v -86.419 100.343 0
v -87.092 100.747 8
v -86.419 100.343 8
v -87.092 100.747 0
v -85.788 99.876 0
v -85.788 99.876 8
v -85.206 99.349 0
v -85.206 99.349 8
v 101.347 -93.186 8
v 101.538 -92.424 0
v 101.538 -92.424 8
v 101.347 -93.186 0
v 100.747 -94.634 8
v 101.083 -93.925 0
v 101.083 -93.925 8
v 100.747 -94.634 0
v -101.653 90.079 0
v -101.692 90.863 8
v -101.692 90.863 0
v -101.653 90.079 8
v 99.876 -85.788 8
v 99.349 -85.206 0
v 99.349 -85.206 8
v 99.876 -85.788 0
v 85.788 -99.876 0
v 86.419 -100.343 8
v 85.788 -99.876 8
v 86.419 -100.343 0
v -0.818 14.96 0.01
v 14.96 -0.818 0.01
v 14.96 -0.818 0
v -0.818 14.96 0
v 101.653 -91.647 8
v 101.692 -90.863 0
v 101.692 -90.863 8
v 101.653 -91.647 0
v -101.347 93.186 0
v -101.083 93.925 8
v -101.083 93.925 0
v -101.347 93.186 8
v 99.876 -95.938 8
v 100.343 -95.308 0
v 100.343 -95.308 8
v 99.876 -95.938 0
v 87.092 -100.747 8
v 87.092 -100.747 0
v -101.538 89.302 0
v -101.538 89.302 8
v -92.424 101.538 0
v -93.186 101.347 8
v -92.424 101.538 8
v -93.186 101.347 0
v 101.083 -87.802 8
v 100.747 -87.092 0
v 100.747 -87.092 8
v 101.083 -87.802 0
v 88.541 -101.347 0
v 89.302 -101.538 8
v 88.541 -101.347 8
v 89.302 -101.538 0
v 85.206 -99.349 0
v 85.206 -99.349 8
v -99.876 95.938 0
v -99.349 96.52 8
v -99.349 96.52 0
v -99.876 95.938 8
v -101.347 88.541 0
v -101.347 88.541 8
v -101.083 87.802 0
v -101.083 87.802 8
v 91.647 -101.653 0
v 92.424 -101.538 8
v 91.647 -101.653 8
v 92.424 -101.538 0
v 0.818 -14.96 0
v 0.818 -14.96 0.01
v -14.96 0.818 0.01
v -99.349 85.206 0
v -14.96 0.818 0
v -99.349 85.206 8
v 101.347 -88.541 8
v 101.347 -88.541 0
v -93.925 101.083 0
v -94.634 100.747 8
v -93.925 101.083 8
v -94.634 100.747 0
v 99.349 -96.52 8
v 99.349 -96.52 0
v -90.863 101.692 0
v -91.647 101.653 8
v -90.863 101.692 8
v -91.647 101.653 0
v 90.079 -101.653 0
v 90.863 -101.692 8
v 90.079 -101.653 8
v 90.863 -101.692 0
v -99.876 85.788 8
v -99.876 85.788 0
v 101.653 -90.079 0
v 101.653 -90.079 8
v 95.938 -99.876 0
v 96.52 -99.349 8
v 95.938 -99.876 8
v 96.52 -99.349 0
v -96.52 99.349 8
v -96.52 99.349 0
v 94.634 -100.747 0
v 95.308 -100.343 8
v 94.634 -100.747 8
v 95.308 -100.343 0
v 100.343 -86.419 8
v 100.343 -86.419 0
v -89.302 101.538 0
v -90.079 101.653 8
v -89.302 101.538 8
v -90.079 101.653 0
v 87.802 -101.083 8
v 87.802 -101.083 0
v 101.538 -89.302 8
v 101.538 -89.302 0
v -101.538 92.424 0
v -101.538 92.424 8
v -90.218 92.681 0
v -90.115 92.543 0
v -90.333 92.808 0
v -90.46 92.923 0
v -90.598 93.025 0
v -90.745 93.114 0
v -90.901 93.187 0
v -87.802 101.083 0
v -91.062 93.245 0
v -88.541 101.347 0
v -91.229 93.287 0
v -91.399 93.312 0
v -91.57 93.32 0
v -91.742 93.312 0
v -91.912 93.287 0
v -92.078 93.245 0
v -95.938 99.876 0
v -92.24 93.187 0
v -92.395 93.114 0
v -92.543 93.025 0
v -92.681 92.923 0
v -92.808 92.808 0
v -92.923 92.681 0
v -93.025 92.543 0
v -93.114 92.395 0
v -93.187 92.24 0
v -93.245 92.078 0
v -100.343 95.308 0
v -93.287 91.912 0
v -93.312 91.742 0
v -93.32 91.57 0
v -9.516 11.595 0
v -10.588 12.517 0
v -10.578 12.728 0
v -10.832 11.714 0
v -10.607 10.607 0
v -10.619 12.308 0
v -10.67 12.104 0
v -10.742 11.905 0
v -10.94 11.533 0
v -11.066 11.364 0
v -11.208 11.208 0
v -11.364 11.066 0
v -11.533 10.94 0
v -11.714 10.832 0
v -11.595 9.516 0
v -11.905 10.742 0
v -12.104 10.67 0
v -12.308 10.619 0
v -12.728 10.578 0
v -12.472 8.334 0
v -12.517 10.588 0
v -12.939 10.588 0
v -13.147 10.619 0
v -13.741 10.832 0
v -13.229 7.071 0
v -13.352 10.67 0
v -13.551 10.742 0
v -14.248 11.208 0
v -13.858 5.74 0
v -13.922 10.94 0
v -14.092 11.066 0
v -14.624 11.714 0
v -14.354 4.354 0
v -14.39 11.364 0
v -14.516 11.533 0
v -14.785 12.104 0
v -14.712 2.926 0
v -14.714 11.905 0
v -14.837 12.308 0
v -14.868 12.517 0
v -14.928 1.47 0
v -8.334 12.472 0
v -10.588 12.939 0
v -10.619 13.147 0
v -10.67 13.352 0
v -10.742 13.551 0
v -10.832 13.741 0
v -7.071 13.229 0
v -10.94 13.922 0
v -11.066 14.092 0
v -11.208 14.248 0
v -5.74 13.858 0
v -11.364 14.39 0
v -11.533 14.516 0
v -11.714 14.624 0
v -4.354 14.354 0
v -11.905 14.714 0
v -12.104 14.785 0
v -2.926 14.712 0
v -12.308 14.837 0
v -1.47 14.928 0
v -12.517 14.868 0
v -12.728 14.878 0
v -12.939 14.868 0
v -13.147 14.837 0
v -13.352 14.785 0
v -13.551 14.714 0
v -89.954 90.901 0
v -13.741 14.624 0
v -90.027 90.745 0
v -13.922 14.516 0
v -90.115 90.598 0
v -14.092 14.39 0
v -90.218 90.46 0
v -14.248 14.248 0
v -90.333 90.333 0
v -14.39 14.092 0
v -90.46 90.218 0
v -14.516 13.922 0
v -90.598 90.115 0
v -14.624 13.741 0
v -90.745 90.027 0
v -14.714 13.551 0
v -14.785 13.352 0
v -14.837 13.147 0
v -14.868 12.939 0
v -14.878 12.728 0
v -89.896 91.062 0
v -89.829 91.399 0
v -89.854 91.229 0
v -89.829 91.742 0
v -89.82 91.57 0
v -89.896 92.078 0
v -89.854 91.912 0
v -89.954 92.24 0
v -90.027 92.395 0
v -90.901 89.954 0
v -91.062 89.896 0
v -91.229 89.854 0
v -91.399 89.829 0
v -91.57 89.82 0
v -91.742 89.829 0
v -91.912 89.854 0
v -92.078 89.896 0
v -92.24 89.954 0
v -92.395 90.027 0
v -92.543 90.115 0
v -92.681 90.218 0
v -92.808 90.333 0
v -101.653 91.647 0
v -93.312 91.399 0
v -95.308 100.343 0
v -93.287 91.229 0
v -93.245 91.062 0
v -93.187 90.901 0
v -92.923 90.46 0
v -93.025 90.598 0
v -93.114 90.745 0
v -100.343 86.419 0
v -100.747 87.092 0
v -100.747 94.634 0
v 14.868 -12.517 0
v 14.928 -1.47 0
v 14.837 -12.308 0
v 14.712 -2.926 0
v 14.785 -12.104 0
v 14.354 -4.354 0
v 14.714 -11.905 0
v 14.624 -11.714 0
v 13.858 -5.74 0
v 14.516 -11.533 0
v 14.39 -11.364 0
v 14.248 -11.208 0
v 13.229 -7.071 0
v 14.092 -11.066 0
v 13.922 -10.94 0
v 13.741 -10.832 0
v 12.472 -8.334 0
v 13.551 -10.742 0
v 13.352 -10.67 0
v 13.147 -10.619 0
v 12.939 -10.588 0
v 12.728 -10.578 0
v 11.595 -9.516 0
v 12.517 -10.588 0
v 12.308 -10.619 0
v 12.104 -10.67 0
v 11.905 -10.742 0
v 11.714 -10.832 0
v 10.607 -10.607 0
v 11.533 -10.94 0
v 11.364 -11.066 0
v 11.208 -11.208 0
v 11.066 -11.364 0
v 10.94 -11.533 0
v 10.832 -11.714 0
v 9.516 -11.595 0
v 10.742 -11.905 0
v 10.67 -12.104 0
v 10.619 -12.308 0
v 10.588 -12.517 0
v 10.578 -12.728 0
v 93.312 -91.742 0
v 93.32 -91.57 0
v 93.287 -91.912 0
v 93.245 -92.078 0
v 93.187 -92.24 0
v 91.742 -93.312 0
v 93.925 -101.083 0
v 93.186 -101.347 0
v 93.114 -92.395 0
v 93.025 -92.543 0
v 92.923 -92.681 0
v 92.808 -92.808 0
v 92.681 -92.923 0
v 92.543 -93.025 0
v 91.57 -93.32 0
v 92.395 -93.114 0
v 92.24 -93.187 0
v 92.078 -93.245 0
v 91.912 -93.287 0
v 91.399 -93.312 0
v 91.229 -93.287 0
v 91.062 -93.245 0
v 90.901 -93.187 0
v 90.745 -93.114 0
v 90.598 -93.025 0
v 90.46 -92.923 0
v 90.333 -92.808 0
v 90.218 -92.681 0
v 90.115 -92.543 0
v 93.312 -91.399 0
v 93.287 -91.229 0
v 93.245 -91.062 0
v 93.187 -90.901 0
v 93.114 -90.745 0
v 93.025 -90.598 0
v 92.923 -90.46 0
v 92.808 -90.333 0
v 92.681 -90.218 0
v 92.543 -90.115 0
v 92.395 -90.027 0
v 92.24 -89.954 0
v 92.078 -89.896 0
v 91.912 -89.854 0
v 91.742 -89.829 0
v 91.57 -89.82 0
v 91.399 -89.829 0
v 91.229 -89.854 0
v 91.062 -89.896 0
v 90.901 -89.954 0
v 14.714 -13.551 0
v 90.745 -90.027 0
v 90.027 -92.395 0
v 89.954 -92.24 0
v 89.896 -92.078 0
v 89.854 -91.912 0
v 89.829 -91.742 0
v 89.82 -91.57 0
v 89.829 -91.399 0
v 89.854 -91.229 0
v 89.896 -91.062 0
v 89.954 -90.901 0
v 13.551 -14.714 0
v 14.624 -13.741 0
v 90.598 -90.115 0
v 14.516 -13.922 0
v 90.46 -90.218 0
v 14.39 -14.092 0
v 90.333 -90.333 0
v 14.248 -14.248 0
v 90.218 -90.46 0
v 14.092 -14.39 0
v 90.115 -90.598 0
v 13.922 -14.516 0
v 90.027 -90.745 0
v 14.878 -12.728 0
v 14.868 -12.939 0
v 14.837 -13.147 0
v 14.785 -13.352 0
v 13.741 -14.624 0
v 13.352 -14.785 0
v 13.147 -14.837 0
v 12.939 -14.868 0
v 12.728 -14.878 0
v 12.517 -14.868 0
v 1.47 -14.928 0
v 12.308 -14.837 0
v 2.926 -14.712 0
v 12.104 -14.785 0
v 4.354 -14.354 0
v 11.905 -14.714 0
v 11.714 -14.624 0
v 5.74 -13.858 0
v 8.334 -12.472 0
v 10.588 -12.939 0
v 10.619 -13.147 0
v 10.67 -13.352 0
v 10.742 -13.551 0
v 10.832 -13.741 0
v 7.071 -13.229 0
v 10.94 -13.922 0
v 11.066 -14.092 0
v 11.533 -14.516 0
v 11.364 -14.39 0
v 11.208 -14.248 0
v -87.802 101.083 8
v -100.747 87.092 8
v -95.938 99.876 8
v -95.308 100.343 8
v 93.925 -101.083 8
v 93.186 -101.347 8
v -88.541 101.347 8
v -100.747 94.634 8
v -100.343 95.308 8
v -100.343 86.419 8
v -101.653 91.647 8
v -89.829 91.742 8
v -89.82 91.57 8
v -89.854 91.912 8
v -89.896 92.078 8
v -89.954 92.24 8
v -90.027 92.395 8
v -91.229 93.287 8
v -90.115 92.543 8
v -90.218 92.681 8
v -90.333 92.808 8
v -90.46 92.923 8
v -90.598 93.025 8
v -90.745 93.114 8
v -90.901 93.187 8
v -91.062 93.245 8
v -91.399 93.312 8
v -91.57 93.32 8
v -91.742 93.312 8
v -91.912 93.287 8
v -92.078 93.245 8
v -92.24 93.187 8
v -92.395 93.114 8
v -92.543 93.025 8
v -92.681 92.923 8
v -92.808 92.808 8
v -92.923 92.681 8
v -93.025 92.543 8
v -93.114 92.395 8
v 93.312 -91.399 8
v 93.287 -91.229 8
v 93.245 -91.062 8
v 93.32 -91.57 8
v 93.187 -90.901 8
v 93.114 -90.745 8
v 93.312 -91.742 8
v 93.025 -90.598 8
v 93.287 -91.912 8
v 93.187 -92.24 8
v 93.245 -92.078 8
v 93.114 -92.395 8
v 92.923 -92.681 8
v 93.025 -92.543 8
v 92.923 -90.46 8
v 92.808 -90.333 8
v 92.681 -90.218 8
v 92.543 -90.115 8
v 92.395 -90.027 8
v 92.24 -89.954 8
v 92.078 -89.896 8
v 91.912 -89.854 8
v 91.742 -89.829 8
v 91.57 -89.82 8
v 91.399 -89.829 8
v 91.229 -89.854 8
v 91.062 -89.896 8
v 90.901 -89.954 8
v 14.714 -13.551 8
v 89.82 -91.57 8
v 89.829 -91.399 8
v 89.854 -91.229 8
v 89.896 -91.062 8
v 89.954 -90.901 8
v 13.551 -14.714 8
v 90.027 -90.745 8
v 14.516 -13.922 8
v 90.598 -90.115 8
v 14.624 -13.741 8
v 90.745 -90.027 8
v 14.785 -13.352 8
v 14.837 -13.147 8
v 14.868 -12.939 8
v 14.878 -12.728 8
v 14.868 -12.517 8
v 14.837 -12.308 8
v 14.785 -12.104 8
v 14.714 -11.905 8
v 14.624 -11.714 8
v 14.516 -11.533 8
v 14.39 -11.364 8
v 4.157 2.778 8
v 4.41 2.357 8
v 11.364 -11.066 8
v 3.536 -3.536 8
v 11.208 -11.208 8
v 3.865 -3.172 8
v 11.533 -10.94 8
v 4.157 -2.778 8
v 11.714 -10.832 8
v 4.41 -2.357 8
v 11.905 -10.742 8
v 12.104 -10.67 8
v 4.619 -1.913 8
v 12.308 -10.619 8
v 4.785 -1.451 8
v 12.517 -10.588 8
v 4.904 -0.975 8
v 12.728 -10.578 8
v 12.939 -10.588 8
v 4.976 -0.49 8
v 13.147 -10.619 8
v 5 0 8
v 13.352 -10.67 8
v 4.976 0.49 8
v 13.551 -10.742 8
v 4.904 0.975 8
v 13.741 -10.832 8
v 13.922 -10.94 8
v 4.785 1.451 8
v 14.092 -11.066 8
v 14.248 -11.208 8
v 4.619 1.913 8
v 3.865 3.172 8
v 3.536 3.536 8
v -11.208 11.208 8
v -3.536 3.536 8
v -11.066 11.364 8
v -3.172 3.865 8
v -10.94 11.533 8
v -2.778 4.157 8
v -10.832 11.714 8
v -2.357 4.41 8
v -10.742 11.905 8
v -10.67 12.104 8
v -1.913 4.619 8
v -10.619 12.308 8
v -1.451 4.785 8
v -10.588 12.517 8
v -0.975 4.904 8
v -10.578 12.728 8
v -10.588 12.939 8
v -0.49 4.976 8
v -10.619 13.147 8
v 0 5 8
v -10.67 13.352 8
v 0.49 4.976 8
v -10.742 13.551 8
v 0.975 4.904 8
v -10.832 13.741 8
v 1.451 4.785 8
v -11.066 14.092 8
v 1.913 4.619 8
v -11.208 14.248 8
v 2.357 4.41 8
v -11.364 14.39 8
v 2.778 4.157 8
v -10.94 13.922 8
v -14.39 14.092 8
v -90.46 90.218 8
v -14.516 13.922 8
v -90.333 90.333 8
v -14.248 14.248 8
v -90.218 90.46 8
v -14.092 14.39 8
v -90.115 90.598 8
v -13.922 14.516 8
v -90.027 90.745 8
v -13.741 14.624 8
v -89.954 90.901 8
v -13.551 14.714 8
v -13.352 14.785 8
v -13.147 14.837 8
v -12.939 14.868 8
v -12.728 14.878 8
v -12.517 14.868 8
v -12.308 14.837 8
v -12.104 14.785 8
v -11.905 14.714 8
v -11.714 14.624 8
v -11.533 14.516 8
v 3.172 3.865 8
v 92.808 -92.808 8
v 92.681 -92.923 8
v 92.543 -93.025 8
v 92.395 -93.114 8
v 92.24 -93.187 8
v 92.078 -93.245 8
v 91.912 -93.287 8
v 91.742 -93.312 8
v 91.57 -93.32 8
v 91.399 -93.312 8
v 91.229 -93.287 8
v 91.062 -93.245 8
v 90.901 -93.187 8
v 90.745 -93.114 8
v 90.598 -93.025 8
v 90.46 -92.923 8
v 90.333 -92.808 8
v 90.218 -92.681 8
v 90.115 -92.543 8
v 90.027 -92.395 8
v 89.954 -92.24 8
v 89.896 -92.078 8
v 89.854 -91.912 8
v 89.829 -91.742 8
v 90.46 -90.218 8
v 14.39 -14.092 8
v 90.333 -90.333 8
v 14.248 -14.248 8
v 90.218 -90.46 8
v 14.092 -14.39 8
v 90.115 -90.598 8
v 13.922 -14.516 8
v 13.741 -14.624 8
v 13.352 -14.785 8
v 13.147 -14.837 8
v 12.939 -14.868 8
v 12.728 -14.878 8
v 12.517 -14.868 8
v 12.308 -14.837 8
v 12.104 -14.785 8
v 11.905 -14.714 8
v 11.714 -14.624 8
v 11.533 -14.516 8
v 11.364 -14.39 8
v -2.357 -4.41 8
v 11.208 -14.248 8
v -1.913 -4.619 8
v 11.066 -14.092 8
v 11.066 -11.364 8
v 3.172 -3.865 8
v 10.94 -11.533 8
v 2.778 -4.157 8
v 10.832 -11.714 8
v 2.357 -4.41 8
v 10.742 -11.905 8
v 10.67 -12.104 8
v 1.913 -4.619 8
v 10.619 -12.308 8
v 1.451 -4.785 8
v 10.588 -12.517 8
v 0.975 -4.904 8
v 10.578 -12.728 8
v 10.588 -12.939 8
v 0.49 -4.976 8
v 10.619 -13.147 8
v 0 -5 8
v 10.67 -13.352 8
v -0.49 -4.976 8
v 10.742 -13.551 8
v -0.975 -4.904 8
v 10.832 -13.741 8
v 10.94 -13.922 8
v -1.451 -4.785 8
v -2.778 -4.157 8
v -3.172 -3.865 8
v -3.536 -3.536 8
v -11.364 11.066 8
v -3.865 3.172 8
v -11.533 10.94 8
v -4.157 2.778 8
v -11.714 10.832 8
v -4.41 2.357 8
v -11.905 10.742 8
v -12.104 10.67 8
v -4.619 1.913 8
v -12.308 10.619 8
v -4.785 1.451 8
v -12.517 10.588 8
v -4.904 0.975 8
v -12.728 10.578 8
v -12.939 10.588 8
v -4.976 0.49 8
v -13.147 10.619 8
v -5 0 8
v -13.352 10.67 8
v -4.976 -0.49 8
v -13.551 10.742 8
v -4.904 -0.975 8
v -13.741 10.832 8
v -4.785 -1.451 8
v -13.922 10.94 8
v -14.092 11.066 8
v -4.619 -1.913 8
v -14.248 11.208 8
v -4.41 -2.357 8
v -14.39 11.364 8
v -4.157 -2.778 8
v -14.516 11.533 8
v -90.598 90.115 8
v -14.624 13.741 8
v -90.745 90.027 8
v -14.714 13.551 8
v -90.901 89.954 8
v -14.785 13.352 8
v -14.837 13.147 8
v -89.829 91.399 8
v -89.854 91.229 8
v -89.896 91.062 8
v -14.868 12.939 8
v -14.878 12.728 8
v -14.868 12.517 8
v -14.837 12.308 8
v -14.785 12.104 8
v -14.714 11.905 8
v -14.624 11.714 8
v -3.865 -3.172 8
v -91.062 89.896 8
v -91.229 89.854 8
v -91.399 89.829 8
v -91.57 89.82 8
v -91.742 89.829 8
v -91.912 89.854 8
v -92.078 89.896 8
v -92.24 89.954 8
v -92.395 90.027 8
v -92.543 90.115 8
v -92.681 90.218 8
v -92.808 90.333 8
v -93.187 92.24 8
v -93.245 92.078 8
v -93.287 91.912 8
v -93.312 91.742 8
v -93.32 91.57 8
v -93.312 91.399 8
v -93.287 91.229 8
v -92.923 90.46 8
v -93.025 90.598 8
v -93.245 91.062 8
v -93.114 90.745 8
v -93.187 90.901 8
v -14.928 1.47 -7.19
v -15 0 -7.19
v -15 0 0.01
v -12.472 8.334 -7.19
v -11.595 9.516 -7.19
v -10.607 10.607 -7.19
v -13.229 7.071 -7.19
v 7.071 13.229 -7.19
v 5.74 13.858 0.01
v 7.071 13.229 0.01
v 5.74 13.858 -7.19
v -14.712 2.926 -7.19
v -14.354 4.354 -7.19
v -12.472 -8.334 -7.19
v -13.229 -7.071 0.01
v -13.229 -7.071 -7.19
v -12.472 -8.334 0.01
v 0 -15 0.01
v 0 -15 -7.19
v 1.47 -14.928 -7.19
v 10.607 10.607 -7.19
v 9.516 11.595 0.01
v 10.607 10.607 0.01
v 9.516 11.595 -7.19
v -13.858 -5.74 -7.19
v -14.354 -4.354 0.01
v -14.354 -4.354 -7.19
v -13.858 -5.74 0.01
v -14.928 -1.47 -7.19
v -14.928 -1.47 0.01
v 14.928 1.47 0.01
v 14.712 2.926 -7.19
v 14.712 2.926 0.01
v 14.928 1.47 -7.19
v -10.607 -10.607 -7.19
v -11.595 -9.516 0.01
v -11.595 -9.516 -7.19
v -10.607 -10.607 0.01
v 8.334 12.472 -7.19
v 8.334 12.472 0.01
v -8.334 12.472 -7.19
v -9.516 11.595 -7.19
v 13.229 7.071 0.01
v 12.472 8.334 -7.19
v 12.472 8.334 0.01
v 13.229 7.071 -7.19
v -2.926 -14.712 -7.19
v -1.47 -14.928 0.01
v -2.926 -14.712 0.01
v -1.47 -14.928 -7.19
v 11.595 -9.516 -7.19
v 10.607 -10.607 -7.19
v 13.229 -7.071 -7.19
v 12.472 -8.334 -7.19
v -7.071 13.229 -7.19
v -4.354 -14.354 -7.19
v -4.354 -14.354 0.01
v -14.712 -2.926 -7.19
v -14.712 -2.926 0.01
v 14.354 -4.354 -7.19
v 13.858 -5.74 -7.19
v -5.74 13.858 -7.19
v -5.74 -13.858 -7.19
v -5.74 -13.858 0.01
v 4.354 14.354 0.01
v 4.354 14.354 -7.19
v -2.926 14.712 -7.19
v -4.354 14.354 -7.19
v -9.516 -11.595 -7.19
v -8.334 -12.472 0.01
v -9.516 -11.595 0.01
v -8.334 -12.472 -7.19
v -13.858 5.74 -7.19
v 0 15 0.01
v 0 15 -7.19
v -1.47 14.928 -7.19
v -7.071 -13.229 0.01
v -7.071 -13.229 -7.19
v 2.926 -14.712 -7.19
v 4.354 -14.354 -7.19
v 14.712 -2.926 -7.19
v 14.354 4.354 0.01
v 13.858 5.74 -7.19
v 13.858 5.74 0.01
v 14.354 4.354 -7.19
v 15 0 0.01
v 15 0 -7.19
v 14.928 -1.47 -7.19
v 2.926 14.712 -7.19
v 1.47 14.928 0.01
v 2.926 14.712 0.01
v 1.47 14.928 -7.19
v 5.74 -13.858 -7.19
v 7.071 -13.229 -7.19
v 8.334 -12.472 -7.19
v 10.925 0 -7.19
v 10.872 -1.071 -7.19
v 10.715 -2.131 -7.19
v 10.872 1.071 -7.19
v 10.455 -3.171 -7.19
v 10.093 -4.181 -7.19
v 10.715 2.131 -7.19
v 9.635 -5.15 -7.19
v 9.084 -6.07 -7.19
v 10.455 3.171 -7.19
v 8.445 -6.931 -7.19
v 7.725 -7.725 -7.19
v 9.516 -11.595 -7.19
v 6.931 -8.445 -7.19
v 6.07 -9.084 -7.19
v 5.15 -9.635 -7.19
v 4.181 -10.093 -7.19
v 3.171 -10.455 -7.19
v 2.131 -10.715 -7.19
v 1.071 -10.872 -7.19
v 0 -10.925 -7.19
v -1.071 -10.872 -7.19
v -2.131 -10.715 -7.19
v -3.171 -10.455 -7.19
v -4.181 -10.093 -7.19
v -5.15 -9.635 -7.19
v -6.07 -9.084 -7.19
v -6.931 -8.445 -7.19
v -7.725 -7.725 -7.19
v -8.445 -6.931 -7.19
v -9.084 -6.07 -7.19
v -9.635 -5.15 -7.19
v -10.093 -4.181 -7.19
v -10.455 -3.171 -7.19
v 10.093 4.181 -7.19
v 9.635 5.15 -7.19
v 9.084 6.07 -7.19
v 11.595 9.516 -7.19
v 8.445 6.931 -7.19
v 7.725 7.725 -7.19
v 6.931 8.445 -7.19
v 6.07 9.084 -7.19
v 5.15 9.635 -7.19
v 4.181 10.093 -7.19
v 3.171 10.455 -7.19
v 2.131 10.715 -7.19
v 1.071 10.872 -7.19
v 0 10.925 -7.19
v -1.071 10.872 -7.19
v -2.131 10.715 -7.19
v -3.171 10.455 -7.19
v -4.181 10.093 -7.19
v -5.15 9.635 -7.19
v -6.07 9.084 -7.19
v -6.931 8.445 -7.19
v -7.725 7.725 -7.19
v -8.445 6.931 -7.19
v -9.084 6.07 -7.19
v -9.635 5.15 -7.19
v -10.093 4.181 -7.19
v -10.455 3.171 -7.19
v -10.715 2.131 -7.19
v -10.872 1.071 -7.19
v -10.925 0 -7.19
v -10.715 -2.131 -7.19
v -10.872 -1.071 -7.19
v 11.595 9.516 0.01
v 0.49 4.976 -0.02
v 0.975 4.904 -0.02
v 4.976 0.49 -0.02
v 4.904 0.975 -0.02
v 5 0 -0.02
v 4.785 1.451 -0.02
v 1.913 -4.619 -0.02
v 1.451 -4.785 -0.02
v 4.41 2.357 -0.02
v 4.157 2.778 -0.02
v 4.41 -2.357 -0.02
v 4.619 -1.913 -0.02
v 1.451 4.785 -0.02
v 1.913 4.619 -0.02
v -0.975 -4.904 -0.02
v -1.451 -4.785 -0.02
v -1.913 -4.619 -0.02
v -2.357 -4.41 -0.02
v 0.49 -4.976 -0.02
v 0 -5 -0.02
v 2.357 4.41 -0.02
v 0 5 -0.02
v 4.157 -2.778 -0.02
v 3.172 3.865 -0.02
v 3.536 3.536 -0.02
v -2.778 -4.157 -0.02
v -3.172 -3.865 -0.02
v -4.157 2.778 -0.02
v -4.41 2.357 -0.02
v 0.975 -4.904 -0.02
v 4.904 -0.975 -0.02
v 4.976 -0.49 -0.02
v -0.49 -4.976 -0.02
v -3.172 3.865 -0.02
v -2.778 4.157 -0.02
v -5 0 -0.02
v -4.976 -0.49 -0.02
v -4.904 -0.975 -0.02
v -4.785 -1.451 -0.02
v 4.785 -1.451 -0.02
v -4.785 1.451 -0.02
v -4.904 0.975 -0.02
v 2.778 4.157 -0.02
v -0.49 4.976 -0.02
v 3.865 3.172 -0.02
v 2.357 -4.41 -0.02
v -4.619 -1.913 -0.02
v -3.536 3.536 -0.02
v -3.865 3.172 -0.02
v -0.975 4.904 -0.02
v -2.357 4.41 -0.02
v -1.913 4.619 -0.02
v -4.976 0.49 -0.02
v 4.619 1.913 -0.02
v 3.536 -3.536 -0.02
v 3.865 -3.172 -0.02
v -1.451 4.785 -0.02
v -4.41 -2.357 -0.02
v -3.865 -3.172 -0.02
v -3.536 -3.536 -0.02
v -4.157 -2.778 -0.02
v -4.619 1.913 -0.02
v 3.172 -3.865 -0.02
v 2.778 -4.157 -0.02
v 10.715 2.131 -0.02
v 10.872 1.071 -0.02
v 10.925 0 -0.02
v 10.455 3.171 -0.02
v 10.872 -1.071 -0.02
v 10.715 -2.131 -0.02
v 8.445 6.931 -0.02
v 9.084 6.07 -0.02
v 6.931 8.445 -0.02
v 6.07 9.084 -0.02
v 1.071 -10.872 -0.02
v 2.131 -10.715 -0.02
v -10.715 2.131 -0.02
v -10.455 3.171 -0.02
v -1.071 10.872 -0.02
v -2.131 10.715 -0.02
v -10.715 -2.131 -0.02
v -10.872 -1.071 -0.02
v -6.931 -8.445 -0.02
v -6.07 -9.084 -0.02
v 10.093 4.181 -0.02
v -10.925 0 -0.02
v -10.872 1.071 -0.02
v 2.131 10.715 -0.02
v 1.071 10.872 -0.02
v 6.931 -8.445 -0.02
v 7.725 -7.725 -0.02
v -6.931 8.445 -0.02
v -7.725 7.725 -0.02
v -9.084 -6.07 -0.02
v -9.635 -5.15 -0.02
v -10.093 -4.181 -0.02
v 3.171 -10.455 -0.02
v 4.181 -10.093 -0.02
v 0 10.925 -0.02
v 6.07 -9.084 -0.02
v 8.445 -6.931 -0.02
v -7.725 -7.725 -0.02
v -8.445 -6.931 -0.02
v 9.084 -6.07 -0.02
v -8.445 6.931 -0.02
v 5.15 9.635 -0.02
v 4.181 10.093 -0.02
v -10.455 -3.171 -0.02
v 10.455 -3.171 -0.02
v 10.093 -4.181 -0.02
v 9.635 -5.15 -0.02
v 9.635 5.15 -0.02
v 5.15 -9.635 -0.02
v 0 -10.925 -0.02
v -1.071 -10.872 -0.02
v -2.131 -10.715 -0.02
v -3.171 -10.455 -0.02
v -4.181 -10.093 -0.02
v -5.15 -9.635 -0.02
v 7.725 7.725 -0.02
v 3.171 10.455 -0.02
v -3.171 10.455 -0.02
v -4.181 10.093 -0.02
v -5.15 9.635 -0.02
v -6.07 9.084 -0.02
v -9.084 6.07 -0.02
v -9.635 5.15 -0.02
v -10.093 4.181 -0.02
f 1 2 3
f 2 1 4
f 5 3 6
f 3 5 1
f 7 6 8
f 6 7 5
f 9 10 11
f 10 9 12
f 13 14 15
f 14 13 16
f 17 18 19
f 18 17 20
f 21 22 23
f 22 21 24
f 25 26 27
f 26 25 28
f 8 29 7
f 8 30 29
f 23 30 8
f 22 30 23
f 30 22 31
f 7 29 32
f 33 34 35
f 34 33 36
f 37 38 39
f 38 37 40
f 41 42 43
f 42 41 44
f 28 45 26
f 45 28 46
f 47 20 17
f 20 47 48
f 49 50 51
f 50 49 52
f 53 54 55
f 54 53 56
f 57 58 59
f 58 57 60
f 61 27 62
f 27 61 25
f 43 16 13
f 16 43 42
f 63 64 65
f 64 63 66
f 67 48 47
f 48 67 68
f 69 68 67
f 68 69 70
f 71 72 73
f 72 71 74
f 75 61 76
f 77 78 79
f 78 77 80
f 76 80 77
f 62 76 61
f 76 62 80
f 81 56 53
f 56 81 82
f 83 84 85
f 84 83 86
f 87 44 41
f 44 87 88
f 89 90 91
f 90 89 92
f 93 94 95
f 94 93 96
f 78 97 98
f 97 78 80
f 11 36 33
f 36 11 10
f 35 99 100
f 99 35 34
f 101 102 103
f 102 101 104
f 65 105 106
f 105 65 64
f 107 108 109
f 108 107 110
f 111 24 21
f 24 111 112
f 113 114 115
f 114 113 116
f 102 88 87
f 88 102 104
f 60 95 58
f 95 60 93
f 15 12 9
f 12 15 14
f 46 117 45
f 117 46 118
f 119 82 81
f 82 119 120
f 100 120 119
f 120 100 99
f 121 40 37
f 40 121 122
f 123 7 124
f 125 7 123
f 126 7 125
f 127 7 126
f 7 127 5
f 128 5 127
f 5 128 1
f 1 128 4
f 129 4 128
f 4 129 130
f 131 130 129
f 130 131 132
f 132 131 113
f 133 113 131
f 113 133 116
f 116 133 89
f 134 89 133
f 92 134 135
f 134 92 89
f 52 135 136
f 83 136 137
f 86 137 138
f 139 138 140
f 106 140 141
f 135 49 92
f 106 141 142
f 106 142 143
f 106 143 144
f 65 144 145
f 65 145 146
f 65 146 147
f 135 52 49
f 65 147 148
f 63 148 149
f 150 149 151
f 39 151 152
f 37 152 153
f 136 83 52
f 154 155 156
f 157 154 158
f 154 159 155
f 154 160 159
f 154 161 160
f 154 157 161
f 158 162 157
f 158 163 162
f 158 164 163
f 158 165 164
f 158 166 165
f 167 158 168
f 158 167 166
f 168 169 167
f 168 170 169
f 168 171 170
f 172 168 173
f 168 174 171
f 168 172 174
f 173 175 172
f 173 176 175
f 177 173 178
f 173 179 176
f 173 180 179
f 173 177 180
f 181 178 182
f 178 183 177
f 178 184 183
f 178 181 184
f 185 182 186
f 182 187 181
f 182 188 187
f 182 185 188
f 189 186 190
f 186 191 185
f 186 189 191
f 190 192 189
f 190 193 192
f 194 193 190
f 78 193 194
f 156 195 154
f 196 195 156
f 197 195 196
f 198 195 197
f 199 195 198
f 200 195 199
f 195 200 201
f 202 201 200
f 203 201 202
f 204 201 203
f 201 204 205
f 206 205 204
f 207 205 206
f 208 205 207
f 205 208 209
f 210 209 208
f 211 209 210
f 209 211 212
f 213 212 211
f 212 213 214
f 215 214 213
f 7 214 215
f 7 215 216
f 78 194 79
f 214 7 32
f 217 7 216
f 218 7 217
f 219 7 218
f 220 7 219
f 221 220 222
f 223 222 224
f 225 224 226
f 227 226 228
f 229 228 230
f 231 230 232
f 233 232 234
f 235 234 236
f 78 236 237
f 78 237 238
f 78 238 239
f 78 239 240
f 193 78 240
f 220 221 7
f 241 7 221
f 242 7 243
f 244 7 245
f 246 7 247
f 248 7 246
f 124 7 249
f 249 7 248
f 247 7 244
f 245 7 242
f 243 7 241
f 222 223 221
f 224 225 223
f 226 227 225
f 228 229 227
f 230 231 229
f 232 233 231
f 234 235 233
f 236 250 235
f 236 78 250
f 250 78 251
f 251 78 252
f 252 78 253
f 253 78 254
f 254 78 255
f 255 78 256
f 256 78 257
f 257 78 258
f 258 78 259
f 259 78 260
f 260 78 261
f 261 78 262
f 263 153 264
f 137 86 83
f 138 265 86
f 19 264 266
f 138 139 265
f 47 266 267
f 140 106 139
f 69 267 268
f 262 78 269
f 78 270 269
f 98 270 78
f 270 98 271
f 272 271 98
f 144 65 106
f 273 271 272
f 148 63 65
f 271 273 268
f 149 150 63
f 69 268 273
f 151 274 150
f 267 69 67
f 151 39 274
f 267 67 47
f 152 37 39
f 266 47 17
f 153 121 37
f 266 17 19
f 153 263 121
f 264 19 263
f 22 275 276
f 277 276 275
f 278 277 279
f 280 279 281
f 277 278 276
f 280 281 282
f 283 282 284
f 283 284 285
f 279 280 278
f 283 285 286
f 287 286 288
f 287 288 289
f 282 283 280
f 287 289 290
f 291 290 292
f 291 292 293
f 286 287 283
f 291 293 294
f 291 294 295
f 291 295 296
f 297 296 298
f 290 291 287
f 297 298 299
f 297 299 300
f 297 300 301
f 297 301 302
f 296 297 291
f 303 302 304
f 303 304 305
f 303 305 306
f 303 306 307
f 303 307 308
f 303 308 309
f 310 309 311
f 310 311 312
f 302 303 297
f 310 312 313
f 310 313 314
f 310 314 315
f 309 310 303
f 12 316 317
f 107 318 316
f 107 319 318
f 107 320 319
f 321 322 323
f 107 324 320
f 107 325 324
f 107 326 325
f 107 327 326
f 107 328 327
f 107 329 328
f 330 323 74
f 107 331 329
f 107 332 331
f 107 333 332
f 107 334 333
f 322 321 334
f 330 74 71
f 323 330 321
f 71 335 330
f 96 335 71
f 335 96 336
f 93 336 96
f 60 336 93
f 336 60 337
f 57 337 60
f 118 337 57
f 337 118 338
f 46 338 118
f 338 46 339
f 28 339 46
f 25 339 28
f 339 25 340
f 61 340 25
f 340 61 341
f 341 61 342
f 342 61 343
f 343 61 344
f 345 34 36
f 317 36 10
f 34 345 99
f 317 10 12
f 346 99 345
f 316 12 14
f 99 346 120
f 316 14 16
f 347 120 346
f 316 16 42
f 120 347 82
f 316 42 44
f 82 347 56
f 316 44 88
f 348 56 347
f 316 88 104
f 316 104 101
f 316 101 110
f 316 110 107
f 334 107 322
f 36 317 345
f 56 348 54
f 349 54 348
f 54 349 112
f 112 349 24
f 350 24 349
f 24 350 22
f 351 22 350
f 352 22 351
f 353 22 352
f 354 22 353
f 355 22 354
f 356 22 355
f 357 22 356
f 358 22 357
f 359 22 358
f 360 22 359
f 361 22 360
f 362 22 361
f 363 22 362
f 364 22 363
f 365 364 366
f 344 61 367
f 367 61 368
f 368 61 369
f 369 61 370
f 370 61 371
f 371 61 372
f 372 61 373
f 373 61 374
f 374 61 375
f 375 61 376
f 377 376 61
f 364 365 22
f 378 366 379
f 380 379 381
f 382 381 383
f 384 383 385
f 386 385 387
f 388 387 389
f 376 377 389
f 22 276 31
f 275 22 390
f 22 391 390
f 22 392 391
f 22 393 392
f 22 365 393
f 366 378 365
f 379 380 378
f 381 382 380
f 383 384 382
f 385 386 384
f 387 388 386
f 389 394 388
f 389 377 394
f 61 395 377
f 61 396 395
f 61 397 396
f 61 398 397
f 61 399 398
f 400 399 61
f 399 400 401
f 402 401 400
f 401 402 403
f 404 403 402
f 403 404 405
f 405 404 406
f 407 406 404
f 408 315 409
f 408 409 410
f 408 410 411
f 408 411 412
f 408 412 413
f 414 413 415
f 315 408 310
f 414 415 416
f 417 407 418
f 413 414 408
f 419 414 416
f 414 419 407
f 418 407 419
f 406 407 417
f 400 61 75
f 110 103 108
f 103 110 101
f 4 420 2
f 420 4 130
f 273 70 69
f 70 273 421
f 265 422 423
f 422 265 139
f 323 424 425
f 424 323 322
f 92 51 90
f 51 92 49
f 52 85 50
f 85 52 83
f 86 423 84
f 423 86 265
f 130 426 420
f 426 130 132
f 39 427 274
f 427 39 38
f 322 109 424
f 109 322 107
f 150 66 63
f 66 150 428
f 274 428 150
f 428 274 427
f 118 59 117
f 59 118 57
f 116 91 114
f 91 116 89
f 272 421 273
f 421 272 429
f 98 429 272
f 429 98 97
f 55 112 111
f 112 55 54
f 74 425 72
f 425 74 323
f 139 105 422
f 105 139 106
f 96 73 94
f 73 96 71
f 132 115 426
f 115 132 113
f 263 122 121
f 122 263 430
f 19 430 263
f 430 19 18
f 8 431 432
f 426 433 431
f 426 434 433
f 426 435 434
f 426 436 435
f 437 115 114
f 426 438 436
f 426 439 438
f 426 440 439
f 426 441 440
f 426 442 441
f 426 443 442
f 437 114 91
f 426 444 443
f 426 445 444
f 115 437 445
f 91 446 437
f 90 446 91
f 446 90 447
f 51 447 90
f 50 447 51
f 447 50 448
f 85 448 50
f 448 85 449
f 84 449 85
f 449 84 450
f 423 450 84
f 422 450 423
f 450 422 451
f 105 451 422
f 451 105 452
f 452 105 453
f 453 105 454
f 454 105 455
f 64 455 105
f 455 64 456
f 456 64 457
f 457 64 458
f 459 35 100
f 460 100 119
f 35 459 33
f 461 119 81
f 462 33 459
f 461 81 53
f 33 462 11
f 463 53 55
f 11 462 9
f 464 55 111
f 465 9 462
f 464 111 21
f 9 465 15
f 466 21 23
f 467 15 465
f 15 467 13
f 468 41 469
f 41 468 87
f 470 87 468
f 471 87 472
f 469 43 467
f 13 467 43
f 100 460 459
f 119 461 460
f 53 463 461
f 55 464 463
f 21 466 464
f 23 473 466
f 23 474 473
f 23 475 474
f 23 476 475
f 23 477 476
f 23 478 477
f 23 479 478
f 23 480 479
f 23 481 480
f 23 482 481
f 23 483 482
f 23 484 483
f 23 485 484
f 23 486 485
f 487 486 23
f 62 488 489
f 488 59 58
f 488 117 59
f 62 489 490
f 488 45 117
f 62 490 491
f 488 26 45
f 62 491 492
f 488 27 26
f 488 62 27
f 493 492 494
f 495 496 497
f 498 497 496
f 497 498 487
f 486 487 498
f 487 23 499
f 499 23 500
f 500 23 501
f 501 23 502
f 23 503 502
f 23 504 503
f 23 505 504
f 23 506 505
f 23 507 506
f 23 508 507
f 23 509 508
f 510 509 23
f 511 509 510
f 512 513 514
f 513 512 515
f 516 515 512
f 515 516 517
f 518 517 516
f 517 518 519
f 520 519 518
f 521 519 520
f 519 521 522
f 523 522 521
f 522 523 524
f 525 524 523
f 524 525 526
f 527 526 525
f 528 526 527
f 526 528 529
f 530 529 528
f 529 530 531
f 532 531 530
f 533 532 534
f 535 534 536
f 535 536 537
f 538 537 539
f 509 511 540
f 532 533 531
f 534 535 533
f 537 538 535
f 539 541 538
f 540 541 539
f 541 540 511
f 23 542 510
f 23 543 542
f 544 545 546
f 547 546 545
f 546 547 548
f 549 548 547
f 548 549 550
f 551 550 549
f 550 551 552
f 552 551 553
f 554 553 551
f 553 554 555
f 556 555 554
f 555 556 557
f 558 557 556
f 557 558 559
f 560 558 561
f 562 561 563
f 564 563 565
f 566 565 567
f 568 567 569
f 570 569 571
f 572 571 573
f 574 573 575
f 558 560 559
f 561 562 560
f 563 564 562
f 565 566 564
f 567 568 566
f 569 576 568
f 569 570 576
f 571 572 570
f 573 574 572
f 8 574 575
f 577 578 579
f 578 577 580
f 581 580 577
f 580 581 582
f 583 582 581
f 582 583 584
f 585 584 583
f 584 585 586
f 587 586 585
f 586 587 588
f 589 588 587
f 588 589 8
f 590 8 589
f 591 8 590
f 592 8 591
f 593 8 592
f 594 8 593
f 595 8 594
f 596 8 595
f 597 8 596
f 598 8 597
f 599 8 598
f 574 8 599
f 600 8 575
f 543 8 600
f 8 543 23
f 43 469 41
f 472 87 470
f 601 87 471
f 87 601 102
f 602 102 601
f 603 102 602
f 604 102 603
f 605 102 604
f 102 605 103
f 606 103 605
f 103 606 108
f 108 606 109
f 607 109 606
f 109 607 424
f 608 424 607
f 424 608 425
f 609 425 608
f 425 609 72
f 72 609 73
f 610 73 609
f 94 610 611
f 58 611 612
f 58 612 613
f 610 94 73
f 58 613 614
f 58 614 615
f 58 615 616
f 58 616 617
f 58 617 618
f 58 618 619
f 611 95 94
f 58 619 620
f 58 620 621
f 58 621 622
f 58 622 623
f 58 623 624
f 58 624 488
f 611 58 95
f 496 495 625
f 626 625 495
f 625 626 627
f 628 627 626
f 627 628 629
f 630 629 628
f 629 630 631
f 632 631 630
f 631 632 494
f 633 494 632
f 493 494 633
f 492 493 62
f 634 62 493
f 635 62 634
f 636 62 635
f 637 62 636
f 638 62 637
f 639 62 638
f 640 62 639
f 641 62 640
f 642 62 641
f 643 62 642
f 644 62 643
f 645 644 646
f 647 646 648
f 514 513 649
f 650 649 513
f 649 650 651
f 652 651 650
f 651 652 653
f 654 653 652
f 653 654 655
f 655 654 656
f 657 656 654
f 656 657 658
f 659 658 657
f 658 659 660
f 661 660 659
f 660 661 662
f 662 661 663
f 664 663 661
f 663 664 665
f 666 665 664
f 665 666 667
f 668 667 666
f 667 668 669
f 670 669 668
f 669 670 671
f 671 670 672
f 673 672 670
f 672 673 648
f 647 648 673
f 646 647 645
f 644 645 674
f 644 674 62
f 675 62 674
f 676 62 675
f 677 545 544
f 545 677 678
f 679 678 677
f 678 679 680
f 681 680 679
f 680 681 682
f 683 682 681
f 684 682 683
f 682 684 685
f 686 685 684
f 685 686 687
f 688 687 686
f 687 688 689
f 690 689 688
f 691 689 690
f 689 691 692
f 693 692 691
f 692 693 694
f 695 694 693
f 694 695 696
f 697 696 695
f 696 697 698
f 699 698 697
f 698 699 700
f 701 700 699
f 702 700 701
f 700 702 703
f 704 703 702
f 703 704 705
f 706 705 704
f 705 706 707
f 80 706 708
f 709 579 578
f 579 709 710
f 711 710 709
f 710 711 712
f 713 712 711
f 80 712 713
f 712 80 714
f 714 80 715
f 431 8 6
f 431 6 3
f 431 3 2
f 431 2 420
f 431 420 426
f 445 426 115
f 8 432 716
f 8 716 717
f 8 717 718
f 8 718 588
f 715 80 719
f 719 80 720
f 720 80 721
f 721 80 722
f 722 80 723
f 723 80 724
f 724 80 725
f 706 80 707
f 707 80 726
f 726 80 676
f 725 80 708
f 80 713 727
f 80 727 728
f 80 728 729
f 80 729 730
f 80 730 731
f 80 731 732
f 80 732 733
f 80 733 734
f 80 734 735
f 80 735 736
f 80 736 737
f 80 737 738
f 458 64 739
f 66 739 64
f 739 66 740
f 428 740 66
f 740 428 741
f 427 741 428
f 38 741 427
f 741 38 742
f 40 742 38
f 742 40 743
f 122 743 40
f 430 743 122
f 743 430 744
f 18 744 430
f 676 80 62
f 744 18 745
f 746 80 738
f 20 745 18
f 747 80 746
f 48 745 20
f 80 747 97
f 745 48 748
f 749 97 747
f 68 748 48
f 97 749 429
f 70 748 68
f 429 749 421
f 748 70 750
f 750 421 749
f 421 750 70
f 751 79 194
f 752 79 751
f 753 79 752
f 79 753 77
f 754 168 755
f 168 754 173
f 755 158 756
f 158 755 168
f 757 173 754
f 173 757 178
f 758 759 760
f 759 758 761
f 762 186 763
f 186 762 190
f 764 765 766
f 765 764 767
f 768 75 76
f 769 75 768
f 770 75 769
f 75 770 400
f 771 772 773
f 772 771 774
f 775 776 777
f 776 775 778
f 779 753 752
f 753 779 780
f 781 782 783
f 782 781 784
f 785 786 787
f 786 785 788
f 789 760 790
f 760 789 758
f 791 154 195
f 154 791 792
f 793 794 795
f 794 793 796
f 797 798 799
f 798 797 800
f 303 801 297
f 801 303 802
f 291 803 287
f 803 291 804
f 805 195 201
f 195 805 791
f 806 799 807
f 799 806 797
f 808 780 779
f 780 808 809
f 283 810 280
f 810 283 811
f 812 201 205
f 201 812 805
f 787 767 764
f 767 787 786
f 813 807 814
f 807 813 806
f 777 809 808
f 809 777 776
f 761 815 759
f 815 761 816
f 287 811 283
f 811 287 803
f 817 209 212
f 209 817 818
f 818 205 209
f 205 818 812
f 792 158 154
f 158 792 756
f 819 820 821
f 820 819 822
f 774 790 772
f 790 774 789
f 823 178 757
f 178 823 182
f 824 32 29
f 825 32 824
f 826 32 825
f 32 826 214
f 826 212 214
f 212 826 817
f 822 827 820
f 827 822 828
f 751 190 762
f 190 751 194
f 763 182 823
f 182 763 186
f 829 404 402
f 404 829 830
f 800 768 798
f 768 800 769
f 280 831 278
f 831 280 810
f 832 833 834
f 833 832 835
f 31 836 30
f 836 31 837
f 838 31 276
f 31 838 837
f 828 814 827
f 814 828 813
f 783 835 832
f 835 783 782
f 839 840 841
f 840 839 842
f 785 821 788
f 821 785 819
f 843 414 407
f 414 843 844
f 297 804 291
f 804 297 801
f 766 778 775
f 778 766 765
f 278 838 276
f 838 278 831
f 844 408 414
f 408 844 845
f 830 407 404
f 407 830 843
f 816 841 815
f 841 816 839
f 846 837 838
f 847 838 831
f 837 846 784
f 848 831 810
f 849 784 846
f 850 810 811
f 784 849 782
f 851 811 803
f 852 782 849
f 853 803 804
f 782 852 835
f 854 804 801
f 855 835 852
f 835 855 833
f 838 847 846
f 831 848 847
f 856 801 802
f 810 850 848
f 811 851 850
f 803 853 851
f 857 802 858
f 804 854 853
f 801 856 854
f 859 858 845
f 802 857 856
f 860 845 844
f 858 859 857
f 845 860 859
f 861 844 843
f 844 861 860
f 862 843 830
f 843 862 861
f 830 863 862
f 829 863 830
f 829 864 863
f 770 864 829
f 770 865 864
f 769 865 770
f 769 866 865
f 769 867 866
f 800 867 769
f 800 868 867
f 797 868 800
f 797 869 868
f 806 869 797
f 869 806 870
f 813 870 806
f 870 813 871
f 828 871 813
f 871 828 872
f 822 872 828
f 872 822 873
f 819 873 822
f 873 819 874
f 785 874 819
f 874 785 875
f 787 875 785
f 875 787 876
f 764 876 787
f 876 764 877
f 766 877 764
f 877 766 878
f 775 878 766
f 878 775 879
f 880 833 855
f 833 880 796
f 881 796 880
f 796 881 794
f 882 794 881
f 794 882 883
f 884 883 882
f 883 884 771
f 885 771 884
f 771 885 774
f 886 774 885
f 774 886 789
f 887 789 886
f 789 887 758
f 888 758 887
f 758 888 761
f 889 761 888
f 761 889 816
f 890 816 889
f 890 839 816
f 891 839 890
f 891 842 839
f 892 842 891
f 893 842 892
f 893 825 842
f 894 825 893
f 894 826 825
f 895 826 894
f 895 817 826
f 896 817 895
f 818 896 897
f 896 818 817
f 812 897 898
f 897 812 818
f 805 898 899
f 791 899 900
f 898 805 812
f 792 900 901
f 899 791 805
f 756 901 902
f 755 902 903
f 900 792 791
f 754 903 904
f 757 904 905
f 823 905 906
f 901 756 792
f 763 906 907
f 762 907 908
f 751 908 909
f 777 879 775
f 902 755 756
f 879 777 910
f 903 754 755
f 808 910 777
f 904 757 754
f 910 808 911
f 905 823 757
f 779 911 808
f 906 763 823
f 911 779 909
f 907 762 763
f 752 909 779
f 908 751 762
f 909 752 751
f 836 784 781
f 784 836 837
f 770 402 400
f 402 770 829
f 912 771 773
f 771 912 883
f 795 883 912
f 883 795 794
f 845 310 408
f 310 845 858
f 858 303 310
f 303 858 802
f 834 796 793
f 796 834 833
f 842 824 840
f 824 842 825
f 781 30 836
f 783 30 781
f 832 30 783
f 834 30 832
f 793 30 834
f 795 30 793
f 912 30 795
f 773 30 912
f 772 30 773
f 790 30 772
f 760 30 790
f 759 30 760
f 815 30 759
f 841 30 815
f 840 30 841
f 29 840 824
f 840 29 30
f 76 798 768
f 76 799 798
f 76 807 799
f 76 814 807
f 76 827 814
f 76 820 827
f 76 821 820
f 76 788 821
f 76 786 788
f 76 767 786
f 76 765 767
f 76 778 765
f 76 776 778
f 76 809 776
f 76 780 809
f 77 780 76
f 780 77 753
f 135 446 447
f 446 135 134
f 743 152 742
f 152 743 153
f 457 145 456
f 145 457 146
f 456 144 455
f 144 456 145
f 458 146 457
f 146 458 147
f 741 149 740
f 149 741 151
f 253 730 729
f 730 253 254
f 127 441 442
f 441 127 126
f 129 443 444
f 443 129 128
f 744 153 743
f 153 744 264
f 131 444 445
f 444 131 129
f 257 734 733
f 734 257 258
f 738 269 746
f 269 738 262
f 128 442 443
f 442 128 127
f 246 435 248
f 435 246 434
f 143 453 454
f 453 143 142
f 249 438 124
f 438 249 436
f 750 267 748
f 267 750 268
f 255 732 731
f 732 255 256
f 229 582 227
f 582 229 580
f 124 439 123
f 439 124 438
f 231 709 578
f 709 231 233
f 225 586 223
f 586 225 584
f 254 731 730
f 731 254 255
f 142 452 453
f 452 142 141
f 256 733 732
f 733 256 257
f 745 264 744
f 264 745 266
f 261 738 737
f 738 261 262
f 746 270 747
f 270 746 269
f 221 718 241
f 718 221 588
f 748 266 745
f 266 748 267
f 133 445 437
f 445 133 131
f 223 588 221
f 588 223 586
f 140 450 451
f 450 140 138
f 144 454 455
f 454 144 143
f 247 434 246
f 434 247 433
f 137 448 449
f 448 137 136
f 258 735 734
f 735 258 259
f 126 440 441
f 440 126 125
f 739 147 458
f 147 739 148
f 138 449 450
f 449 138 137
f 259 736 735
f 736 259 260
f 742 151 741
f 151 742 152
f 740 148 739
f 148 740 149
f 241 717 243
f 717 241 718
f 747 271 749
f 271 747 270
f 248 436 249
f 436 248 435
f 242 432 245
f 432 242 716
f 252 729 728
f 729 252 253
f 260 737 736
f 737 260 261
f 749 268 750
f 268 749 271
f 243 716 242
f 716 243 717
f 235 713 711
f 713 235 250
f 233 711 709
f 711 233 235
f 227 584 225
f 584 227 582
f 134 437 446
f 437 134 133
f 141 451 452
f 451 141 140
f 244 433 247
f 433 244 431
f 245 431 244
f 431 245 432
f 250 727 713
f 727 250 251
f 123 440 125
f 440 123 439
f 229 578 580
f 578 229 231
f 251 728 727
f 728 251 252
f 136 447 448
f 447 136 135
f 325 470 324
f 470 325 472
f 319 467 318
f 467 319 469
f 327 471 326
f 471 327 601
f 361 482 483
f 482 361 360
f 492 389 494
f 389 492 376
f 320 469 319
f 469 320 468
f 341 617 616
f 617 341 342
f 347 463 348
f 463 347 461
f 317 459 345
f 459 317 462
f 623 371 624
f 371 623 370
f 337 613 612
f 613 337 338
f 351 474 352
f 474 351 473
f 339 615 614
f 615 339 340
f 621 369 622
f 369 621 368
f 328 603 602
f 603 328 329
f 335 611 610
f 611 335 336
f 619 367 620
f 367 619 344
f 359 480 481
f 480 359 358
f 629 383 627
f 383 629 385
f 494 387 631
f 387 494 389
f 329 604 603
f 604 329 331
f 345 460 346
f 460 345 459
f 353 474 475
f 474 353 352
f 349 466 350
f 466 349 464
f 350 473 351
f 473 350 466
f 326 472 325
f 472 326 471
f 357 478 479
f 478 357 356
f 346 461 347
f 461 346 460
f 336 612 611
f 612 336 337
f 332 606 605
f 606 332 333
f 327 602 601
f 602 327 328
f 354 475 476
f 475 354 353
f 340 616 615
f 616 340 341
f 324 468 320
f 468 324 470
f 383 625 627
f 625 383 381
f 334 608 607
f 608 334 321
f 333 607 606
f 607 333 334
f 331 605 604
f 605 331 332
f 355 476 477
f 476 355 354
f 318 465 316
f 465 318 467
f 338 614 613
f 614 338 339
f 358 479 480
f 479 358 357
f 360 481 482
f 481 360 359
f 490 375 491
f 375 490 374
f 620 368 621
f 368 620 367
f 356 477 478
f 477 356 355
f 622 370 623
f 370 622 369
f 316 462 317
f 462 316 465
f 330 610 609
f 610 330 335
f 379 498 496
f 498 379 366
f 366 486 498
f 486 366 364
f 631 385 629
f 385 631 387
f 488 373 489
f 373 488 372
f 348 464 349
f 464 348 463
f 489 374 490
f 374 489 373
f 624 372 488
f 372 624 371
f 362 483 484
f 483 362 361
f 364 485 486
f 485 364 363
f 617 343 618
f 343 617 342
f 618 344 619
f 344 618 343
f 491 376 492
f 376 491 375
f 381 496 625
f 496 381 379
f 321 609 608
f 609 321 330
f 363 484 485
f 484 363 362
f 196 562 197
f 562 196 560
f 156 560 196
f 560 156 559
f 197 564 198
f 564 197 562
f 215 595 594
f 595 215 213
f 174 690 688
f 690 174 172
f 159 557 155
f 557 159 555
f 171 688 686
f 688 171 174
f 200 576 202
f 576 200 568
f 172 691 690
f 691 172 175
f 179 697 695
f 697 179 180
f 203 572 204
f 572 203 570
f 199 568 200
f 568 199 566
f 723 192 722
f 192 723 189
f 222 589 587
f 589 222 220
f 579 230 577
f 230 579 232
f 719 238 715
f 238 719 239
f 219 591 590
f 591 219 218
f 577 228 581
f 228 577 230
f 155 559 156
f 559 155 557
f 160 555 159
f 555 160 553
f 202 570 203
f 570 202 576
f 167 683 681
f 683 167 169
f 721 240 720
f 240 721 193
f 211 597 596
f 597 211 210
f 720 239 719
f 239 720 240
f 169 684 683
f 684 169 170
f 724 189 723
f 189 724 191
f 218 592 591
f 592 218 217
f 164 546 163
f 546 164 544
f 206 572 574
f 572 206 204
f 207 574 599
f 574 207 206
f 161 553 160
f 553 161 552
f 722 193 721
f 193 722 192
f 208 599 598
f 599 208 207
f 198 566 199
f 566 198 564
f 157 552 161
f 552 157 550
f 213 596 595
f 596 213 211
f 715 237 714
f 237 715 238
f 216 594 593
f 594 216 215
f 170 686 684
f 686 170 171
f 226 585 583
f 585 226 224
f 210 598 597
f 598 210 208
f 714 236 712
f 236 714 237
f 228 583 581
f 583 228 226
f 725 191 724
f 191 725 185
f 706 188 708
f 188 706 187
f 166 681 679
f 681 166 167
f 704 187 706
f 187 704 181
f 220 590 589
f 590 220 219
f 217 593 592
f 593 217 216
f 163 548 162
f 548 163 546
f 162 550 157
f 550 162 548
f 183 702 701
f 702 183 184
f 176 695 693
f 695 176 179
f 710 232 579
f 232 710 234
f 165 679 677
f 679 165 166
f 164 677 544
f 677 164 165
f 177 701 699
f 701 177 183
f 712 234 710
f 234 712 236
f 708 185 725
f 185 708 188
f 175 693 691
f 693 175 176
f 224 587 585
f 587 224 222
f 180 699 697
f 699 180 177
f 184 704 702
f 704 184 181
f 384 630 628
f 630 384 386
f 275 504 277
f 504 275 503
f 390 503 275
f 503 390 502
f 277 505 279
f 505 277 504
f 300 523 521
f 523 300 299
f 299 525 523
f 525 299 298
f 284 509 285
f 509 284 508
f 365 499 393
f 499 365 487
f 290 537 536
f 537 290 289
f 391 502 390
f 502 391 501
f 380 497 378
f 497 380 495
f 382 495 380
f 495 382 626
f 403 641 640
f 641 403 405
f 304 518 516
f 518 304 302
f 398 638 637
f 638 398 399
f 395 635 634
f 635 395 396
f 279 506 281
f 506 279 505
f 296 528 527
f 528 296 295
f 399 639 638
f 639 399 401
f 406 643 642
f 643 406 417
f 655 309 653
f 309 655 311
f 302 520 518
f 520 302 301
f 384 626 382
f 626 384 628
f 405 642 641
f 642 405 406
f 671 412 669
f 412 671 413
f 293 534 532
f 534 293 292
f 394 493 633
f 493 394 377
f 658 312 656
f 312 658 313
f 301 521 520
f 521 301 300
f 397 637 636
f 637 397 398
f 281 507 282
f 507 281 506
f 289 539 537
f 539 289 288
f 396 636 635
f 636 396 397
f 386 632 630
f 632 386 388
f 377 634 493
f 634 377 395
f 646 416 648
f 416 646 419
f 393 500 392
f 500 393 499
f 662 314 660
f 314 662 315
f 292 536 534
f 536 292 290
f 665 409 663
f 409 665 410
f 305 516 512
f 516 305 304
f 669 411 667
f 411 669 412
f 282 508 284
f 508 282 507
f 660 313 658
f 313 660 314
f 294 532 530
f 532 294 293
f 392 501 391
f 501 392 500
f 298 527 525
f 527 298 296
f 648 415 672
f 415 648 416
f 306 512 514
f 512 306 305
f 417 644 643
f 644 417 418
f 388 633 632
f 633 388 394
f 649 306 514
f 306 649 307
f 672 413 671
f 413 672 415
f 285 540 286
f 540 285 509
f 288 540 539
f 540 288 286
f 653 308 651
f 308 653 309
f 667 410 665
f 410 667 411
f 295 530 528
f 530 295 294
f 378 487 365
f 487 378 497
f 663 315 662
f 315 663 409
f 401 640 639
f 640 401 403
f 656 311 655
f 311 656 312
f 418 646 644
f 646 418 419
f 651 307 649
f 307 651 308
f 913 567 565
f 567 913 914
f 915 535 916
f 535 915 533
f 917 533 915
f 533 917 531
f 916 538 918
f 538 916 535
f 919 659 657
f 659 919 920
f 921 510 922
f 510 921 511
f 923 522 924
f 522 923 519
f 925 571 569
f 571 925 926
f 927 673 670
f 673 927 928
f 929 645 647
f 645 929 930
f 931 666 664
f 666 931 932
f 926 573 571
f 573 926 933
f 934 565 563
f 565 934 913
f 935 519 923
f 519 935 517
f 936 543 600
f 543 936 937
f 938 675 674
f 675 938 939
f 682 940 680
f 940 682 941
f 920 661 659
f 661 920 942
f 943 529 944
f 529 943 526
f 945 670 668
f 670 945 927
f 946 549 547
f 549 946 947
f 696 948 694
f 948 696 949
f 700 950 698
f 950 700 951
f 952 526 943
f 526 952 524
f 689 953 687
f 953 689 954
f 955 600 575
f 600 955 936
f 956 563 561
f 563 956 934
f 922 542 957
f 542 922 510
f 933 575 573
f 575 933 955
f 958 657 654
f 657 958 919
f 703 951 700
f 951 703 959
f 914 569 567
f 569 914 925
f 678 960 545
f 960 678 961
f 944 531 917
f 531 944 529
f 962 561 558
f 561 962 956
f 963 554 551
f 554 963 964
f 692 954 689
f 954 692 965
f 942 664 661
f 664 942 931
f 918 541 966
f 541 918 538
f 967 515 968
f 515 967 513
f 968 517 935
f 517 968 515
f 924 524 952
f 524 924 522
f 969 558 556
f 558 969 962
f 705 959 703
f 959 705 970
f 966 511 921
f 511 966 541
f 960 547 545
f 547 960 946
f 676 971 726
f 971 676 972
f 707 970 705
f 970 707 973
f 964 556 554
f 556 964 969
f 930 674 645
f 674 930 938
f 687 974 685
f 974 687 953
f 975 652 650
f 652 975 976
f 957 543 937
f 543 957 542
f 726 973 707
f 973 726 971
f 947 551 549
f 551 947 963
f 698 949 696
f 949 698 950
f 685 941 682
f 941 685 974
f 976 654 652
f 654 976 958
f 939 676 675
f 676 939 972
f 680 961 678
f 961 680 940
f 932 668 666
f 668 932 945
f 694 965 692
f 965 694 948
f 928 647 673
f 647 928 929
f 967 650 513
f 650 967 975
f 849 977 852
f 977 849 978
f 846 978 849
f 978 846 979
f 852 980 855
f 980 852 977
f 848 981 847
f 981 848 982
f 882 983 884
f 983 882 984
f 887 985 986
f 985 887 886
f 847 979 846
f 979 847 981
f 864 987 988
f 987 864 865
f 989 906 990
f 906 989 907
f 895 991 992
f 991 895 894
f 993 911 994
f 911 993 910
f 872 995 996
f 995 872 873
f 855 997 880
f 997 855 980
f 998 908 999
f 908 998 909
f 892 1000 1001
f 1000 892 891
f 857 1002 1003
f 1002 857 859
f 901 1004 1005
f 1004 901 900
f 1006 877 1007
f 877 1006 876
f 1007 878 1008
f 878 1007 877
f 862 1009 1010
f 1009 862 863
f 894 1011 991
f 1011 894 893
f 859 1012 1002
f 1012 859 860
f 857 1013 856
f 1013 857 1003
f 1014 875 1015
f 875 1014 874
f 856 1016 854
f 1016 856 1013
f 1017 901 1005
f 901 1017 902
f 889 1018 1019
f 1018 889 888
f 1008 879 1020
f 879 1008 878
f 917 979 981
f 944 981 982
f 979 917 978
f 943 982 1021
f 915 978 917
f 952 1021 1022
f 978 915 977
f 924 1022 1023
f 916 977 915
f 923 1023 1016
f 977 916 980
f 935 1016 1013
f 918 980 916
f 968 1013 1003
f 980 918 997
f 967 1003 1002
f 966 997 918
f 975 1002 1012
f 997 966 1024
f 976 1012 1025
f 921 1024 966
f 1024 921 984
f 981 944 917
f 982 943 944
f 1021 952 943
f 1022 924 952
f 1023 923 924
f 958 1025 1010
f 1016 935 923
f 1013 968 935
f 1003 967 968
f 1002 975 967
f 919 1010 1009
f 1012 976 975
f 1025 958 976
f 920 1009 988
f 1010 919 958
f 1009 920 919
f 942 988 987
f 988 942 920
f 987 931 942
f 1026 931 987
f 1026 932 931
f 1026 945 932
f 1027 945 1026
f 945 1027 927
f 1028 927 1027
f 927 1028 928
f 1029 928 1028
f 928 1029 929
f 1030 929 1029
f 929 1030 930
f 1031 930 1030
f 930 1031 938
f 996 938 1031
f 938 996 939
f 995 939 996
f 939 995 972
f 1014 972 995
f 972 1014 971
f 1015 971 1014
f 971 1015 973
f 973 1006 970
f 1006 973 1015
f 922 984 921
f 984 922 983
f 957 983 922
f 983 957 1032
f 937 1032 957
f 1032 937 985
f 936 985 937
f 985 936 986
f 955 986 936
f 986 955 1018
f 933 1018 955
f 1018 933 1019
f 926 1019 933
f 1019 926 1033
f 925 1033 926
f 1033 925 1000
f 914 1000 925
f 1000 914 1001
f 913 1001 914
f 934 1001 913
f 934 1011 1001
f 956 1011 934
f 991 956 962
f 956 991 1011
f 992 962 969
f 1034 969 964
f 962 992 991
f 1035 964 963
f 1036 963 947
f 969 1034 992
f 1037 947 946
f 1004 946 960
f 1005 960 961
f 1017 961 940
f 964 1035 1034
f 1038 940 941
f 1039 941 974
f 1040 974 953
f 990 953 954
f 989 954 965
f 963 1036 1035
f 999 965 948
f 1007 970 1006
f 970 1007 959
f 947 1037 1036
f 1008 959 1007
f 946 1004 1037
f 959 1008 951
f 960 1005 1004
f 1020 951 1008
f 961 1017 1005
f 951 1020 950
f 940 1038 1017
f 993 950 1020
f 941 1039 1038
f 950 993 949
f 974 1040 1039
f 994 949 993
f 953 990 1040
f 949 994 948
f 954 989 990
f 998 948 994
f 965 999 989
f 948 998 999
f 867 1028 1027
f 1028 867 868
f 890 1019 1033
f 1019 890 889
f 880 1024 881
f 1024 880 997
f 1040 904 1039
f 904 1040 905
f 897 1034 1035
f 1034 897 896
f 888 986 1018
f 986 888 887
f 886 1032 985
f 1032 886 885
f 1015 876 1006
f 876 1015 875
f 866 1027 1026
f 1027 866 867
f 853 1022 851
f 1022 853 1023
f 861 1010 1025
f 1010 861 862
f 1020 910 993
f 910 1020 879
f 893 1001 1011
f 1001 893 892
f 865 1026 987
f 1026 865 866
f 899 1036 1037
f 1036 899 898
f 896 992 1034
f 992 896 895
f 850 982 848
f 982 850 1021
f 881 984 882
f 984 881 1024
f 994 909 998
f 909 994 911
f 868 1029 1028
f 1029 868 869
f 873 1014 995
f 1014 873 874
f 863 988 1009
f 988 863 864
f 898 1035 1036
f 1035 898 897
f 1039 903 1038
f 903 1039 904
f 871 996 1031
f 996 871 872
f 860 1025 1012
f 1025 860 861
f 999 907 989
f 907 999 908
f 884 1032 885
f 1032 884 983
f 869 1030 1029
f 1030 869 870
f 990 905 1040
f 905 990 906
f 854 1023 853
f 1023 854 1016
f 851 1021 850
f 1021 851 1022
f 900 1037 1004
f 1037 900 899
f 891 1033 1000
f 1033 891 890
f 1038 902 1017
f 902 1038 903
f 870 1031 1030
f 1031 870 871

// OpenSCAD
// Gen-DH — rear BEARING BRIDGE (bar endbell, 2026-10-10): a 608 boss on a 20 mm wide bar that spans the
// two frame rods at 135 deg and 135+180 deg (R = flange_bolt_r). The front bridge uses the rods at 45/225 deg, the rear
// bridge the rods at 135/315 deg, so the two bridges cross at 90 deg and the stator is held at 4 points.
// A bar instead of a full disc is what lets this big-ring kit fit ONE 410 mm plate. Print flat face DOWN (boss up, no supports).
// Brace holes (temporary M4 jack rods, R = brace_r) sit on the bar axis.
include <parameters.scad>;
$fn = 64;
bar_w = 20;
bar_len = 2 * (flange_bolt_r + 9);
module bar_2d() { offset(r=8) offset(delta=-8) square([bar_len, bar_w], center=true); }
difference() {
    rotate([0, 0, 135]) union() {
        linear_extrude(endbell_thick) bar_2d();
        translate([0, 0, -bearing_h + 0.01]) cylinder(d=30, h=bearing_h);
    }
    translate([0, 0, -bearing_h - 0.1]) cylinder(d=endbell_shaft_clear, h=50);
    translate([0, 0, -bearing_h - 0.02]) cylinder(d=bearing_d, h=bearing_h);
    for (s = [0, 180]) rotate([0, 0, 135 + s]) translate([flange_bolt_r, 0, -20]) cylinder(d=m3_clear, h=60);
    for (a = brace_angles) translate([brace_r*cos(a), brace_r*sin(a), -20]) cylinder(d=brace_d, h=50);
}
